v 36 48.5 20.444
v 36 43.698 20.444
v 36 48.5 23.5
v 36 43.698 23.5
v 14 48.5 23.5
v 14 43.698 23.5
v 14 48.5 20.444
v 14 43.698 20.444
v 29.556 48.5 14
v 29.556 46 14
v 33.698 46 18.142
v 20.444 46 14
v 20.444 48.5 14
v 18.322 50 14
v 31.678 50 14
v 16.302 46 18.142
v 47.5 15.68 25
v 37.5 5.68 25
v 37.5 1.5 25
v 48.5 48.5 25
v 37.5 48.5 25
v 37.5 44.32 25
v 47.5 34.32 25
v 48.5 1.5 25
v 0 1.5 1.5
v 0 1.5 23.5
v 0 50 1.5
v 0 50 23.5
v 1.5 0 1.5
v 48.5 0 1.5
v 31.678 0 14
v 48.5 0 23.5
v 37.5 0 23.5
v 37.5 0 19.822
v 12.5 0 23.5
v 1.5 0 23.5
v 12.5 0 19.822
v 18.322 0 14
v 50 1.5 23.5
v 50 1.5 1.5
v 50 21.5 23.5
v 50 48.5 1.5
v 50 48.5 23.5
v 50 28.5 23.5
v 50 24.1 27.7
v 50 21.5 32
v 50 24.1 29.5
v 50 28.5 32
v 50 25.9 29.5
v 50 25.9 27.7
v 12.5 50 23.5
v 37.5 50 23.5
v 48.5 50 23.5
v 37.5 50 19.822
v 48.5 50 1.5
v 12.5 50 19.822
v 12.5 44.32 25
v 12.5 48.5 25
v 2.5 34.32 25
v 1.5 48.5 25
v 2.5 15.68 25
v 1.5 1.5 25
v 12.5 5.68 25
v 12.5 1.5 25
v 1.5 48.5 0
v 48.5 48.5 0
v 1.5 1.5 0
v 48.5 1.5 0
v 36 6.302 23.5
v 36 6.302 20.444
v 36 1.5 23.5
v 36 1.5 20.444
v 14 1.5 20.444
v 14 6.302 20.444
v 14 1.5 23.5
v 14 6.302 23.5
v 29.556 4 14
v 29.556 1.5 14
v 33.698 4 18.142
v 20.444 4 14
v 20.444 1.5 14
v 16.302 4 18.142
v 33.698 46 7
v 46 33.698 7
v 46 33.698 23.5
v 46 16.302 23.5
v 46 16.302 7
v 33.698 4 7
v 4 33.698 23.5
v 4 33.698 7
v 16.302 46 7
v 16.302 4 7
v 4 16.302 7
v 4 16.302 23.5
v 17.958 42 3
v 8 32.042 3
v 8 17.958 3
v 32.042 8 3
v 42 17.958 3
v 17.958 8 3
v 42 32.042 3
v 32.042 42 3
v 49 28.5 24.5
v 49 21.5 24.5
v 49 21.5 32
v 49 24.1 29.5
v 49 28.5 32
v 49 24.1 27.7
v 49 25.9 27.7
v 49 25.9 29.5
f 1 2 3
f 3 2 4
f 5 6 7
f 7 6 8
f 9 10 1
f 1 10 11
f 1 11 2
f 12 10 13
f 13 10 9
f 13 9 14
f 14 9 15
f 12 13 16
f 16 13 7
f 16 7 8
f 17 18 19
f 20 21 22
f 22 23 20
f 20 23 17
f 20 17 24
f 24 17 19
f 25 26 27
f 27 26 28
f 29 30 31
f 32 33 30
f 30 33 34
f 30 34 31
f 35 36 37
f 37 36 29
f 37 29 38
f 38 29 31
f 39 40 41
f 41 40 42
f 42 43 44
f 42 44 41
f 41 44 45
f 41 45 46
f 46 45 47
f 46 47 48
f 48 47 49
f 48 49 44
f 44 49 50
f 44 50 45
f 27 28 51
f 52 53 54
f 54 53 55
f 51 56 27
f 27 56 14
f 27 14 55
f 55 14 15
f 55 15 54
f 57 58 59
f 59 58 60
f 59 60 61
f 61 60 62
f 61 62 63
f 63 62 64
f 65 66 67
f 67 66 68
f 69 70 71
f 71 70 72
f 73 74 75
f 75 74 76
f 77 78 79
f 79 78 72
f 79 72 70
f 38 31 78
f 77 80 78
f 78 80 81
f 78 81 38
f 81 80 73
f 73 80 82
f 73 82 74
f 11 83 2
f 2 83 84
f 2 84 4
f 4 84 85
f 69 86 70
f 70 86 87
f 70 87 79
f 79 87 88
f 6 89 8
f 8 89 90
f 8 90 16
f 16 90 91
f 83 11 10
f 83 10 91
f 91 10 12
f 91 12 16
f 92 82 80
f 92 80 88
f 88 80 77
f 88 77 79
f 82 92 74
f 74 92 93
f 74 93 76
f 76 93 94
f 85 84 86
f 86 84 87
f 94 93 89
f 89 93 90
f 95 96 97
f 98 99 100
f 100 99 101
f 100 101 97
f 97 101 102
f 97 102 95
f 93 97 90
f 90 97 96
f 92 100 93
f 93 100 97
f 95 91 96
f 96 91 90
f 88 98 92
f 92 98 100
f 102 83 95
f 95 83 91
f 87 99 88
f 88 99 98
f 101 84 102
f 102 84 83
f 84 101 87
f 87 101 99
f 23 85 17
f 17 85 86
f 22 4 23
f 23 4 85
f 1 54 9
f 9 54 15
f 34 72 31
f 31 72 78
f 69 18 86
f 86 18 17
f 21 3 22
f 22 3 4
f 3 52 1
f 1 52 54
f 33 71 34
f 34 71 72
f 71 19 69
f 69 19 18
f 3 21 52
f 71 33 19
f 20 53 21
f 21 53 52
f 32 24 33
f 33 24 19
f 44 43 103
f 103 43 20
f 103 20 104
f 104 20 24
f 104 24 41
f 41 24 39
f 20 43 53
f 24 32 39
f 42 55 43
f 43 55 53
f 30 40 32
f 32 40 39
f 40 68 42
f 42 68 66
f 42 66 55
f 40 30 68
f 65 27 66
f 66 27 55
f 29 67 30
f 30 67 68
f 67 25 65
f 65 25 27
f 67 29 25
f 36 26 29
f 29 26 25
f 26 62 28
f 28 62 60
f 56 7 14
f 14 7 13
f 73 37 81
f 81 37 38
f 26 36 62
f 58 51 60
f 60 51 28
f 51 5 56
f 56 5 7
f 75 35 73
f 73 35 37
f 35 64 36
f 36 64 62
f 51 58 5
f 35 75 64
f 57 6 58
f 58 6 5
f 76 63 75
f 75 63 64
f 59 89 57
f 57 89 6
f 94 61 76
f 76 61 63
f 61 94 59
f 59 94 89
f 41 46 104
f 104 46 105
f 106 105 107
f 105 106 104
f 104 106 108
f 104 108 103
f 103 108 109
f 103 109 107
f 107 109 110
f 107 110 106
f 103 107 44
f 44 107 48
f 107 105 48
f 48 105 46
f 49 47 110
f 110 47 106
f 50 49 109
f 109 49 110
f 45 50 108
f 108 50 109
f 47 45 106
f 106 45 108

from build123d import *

# Parameters (mm, degrees)
SKETCH1_W                = 50
SKETCH1_H                = 50
BOSS_EXTRUDE1_DEPTH      = 25
CUT_EXTRUDE2_DEPTH       = 76
CUT_EXTRUDE3_DEPTH       = 22
CHAMFER1_SIZE            = 4
CHAMFER2_SIZE            = 1.5
BOSS_EXTRUDE2_DEPTH      = 7
BOSS_EXTRUDE2_DEPTH_BACK = 10
SKETCH6_W                = 1
SKETCH6_H                = 7
SKETCH7_W                = 1.8
SKETCH7_H                = 1.8
CUT_EXTRUDE4_DEPTH       = 78.614431648


with BuildPart() as part:
    # Sketch1 → Boss-Extrude1 (new body)
    with BuildSketch(Plane.XY):
        with Locations((25, 25)):
            Rectangle(SKETCH1_W, SKETCH1_H)
    extrude(amount=BOSS_EXTRUDE1_DEPTH)

    # Sketch3 → Cut-Extrude2 (cut, through all)
    with BuildSketch(Plane.XZ):
        Polygon((36, 29.556349186), (29.556349186, 36), (20.443650814, 36), (14, 29.556349186), (14, 20.443650814), (20.443650814, 14), (29.556349186, 14), (36, 20.443650814), align=None)
    extrude(amount=-CUT_EXTRUDE2_DEPTH, mode=Mode.SUBTRACT)

    # Sketch5 → Cut-Extrude3 (cut)
    with BuildSketch(Plane.XY.offset(25)):
        Polygon((4, 33.69848481), (4, 16.30151519), (16.30151519, 4), (33.69848481, 4), (46, 16.30151519), (46, 33.69848481), (33.69848481, 46), (16.30151519, 46), align=None)
    extrude(amount=-CUT_EXTRUDE3_DEPTH, mode=Mode.SUBTRACT)

    # Chamfer1
    chamfer1_edges = [part.edges().sort_by_distance(p)[0] for p in [
        (39.849242405, 39.849242405, 3),
        (39.849242405, 10.150757595, 3),
        (10.150757595, 39.849242405, 3),
        (25, 46, 3),
        (25, 4, 3),
        (10.150757595, 10.150757595, 3),
        (46, 25, 3),
        (4, 25, 3),
    ]]
    chamfer(chamfer1_edges, length=CHAMFER1_SIZE)

    # Chamfer2
    chamfer2_edges = [part.edges().sort_by_distance(p)[0] for p in [
        (50, 25, 25),
        (43, 50, 25),
        (43, 0, 25),
        (7, 50, 25),
        (14, 3.150757595, 25),
        (36, 46.849242405, 25),
        (36, 50, 22.721825407),
        (14, 50, 22.721825407),
        (36, 0, 22.721825407),
        (14, 0, 22.721825407),
        (17.221825407, 0, 17.221825407),
        (32.778174593, 0, 17.221825407),
        (32.778174593, 50, 17.221825407),
        (17.221825407, 50, 17.221825407),
        (0, 25, 25),
        (25, 50, 0),
        (50, 25, 0),
        (14, 46.849242405, 25),
        (36, 3.150757595, 25),
        (25, 0, 0),
        (41, 38.69848481, 25),
        (41, 11.30151519, 25),
        (46, 25, 25),
        (9, 11.30151519, 25),
        (9, 38.69848481, 25),
        (4, 25, 25),
        (0, 25, 0),
        (7, 0, 25),
        (50, 50, 12.5),
        (50, 0, 12.5),
        (0, 0, 12.5),
    ]]
    chamfer(chamfer2_edges, length=CHAMFER2_SIZE)

    # Sketch6 → Boss-Extrude2 (add, two sides: drawn at the far end of the back side and taken through both)
    with BuildSketch(Plane.XY.offset(25).offset(-BOSS_EXTRUDE2_DEPTH_BACK)):
        with Locations((49.5, 25)):
            Rectangle(SKETCH6_W, SKETCH6_H)
    extrude(amount=BOSS_EXTRUDE2_DEPTH + BOSS_EXTRUDE2_DEPTH_BACK)

    # Sketch7 → Cut-Extrude4 (cut, through all)
    with BuildSketch(Plane(origin=(50, 0, 0), x_dir=(0, 0, -1), z_dir=(1, 0, 0))):
        with Locations((-28.6, 25)):
            Rectangle(SKETCH7_W, SKETCH7_H)
    extrude(amount=-CUT_EXTRUDE4_DEPTH, mode=Mode.SUBTRACT)


solid = part.part
